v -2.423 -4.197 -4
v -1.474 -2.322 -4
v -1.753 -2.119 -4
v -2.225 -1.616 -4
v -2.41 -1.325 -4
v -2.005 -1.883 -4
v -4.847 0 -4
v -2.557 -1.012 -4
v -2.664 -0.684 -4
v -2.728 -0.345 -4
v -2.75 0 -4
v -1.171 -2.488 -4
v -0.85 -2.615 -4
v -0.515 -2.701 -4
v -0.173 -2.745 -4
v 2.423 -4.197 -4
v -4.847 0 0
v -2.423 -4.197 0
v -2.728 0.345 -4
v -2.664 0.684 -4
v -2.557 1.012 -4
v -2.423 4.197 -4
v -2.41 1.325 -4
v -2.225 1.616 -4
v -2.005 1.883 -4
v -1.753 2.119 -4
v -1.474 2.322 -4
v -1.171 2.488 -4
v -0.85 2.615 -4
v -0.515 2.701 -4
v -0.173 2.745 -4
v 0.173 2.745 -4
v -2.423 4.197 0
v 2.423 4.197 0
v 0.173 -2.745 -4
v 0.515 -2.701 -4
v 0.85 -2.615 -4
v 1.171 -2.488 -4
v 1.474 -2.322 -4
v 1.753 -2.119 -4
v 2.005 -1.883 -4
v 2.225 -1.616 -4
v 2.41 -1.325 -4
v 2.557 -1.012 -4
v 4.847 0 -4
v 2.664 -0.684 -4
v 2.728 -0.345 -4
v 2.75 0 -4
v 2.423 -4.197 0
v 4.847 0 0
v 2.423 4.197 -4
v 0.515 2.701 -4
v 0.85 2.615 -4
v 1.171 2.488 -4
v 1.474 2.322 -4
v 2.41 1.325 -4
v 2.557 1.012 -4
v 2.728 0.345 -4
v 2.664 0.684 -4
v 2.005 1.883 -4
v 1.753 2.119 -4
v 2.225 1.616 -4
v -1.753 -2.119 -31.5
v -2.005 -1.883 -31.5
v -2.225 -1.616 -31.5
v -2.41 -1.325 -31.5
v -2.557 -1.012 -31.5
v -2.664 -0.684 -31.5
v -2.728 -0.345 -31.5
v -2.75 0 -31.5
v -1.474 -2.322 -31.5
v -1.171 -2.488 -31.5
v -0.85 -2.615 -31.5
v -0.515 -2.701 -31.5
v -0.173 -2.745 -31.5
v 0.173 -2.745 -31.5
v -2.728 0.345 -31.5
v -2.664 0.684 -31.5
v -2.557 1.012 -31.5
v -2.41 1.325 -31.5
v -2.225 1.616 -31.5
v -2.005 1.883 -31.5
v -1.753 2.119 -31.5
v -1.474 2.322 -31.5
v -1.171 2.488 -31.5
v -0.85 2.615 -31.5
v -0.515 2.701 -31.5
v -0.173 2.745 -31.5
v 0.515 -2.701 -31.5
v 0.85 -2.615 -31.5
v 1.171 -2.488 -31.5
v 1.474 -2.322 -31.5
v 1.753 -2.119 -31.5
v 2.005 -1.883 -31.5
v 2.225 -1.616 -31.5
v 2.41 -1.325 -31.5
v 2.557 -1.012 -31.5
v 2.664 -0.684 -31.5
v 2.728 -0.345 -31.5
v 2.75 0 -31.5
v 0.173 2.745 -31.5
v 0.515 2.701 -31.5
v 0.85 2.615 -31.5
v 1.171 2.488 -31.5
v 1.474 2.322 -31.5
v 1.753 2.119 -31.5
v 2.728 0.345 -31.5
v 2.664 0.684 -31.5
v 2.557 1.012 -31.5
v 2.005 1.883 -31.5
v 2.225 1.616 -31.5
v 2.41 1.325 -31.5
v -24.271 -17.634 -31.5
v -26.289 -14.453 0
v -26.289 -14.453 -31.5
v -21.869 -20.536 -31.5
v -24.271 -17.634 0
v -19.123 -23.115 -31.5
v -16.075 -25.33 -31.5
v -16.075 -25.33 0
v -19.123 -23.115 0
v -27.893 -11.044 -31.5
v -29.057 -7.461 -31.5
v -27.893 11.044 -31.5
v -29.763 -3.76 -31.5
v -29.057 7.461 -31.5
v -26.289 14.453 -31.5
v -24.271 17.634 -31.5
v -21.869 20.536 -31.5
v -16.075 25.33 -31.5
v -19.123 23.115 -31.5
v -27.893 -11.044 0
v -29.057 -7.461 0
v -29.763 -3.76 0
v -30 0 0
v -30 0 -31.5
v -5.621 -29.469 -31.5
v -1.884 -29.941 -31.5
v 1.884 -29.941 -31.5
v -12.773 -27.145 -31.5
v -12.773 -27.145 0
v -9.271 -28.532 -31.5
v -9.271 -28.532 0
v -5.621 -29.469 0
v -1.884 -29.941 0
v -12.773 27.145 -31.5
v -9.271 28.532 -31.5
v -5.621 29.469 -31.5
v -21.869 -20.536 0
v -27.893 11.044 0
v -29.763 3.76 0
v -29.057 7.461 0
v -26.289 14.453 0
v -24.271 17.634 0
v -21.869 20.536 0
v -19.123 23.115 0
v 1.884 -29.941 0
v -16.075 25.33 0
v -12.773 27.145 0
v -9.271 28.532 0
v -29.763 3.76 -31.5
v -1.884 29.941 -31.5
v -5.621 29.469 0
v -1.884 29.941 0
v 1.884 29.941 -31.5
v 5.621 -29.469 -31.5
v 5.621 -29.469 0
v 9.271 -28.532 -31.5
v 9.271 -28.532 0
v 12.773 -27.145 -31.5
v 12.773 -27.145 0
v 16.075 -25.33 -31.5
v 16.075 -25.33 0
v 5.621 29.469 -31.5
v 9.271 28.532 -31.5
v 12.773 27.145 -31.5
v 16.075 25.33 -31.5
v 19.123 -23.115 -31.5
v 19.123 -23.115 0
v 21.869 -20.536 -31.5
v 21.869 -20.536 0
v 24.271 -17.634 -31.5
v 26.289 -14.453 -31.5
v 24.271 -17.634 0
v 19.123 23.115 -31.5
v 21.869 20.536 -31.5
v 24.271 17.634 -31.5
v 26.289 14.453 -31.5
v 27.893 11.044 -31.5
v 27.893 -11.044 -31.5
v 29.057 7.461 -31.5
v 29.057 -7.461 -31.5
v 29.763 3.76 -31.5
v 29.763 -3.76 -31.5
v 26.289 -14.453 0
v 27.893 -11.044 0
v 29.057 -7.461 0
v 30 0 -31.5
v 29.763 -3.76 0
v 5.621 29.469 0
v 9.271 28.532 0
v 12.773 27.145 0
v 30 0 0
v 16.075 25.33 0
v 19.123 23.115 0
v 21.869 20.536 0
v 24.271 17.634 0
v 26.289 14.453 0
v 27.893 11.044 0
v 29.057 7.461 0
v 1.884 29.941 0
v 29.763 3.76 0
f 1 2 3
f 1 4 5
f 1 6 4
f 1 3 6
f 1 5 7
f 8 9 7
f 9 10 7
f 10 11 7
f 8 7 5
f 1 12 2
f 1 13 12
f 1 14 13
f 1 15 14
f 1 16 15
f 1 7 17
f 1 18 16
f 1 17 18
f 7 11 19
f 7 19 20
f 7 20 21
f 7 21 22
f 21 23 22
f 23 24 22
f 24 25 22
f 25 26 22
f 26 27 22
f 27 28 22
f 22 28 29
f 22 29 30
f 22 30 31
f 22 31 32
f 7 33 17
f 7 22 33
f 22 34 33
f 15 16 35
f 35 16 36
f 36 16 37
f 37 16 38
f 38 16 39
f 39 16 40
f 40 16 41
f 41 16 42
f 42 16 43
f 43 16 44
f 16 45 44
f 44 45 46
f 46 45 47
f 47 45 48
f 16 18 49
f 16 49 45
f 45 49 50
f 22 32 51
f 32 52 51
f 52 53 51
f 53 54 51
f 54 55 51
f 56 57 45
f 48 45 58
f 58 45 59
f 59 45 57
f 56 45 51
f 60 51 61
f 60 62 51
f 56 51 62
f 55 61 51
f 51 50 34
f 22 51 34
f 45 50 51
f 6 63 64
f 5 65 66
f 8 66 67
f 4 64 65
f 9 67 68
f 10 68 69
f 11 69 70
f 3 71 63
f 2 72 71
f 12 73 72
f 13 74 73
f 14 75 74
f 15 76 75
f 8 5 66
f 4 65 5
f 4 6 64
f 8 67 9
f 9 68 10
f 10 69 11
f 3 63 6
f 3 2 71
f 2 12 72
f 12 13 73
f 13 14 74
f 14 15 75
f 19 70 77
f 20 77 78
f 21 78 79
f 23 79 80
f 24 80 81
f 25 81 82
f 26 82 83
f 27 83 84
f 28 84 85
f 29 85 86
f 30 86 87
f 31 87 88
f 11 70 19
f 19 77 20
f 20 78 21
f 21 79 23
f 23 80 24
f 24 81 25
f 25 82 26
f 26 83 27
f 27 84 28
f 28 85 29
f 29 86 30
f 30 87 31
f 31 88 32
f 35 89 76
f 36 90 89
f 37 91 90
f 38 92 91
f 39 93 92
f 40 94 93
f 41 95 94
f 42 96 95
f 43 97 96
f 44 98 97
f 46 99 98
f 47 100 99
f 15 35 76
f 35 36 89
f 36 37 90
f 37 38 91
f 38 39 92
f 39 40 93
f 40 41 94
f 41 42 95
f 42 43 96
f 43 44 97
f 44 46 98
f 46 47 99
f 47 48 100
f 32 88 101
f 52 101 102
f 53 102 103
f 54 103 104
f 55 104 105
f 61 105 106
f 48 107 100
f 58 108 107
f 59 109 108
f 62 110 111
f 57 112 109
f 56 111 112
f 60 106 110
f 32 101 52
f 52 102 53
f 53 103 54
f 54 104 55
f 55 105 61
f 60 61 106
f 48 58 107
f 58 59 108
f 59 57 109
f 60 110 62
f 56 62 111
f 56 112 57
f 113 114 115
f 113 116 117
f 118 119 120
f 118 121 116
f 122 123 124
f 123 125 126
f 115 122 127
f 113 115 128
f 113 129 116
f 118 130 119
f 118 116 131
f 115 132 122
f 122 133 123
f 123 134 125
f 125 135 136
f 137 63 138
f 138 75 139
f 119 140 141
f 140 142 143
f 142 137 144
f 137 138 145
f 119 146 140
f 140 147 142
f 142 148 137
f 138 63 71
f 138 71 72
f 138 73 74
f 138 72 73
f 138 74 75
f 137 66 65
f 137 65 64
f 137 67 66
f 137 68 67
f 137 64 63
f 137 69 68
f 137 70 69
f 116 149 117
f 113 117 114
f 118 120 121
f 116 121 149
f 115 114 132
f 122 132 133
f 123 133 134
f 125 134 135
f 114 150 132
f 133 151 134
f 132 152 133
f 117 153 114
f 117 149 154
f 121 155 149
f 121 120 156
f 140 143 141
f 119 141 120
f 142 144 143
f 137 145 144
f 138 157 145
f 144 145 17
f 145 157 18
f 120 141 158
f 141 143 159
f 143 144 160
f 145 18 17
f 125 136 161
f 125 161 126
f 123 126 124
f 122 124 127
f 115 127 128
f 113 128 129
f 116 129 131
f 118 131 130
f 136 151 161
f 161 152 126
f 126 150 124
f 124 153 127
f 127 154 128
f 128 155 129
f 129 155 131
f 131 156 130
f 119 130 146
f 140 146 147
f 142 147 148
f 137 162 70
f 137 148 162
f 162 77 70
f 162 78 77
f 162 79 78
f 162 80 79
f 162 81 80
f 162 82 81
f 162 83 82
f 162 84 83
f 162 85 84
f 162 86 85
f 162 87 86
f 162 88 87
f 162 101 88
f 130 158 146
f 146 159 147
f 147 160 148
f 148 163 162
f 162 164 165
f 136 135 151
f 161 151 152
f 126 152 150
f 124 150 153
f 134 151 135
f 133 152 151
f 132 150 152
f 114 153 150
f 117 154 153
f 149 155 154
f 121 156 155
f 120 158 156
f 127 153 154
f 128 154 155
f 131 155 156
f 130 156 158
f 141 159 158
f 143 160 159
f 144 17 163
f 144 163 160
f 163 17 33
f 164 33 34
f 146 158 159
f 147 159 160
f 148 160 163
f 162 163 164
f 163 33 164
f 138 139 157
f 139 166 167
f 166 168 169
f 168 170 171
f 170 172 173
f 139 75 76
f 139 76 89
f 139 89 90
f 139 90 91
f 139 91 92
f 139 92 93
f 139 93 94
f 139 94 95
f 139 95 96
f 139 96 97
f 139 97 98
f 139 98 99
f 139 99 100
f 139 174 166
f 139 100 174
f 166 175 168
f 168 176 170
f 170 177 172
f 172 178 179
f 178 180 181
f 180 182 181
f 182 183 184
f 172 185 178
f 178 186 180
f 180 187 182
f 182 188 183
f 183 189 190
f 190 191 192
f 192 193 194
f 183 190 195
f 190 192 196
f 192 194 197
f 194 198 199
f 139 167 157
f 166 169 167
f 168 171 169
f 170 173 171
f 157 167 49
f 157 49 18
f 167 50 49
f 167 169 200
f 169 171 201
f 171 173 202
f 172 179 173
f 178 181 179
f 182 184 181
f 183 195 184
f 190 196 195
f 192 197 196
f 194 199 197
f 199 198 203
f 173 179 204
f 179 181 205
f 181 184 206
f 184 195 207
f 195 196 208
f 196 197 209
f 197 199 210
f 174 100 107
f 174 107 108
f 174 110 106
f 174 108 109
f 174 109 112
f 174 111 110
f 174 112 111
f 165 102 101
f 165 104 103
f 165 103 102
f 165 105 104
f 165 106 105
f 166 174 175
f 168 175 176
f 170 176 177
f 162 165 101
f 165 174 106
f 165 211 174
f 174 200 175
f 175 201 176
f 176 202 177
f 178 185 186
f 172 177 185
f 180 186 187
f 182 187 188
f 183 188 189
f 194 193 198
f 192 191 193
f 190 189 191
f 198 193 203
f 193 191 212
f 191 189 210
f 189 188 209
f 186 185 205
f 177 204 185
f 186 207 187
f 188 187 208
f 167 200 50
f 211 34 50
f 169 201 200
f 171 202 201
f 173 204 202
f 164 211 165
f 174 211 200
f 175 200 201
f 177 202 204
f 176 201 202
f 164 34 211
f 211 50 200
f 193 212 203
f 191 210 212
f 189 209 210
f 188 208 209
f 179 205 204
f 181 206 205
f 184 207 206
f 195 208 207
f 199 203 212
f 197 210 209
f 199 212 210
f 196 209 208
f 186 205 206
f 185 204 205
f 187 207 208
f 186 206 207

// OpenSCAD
$fn = 50;


difference() {
	union() {
		translate(v = [0, 0, -31.5000000000]) {
			cylinder(h = 31.5000000000, r = 30.0000000000);
		}
	}
	union() {
		translate(v = [0, 0, 0]) {
			rotate(a = [0, 0, 0]) {
				difference() {
					union() {
						translate(v = [0, 0, -4]) {
							linear_extrude(height = 4) {
								polygon(points = [[4.8468000000, 0.0000000000], [2.4234000000, 4.1974519271], [-2.4234000000, 4.1974519271], [-4.8468000000, 0.0000000000], [-2.4234000000, -4.1974519271], [2.4234000000, -4.1974519271]]);
							}
						}
					}
					union();
				}
			}
		}
		#translate(v = [0, 0, -100.0000000000]) {
			cylinder(h = 200, r = 2.7500000000);
		}
	}
}
